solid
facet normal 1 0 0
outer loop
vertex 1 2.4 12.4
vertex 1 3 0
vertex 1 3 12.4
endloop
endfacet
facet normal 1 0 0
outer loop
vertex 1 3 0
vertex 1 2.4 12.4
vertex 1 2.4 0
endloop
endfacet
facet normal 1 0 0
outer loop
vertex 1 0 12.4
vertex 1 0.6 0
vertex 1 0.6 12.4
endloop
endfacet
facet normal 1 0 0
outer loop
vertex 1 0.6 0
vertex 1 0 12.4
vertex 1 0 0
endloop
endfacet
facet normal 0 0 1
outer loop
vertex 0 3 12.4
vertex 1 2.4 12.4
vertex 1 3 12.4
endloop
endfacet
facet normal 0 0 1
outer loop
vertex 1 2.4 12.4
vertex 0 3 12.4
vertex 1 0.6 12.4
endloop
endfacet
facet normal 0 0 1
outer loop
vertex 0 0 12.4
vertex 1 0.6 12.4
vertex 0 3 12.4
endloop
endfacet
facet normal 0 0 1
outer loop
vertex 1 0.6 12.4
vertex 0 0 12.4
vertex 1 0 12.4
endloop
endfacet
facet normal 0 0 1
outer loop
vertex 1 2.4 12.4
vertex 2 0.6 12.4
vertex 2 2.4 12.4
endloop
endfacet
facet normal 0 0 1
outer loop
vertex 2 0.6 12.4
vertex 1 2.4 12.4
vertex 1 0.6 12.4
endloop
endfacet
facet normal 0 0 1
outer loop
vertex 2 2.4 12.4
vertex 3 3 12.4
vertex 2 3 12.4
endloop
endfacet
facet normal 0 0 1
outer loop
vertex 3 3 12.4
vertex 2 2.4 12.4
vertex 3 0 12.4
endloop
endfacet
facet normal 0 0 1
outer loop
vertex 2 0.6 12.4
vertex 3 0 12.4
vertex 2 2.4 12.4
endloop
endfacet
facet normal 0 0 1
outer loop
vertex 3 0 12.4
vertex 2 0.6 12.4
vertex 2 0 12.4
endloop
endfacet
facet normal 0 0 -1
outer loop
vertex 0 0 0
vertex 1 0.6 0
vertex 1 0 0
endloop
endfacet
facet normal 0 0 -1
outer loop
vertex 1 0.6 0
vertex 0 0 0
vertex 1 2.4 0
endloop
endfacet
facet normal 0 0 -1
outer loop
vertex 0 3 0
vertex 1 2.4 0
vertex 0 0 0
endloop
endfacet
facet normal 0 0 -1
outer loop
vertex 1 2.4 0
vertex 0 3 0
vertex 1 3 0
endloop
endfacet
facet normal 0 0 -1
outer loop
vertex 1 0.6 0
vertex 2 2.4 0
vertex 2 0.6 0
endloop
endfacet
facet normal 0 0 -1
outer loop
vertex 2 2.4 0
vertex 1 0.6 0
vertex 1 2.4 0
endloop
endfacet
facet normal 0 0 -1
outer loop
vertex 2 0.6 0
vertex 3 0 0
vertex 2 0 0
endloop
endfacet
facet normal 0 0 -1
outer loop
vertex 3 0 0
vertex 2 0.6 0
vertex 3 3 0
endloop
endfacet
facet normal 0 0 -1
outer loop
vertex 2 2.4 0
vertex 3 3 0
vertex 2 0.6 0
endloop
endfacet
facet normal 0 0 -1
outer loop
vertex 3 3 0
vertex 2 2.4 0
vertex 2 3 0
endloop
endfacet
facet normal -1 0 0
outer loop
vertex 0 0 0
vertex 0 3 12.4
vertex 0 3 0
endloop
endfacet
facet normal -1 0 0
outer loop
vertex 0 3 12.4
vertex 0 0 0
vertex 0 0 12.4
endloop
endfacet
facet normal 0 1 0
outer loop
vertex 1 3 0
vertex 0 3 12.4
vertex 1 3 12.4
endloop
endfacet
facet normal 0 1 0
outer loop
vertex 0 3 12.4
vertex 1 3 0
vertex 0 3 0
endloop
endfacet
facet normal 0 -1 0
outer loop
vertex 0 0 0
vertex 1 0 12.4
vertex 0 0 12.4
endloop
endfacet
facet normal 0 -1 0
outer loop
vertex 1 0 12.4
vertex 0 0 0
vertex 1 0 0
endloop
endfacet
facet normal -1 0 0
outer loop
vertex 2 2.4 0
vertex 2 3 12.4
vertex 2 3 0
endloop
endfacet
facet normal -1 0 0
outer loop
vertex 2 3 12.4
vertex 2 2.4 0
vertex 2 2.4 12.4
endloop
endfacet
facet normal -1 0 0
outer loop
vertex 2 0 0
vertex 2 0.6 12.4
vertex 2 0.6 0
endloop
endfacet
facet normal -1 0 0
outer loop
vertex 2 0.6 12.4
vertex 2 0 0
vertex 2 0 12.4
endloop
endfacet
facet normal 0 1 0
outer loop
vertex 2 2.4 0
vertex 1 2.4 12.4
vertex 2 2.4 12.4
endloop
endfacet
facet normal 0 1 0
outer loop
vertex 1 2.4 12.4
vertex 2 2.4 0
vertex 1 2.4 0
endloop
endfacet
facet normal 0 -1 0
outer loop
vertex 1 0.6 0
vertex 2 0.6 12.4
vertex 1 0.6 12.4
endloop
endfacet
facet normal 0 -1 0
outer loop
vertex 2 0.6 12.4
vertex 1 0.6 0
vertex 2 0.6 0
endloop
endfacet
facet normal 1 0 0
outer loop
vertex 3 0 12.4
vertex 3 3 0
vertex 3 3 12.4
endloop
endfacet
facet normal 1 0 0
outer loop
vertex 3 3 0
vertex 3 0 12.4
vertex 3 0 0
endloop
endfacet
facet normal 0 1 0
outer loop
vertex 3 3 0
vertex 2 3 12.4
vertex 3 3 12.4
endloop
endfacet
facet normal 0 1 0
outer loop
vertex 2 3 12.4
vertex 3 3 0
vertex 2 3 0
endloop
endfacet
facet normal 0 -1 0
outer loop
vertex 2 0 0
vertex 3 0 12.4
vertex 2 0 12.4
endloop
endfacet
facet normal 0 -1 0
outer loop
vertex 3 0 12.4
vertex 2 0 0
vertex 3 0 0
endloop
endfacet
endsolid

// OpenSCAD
// file: ../lib/ssd1306.scad
// SPDX-FileCopyrightText: 2022-2024 Rafael G. Martins <rafael@rafaelmartins.eng.br>
// SPDX-License-Identifier: CERN-OHL-S-2.0

ssd1306_pcb_thickness = 1.6;
ssd1306_pcb_base_height = 2;
ssd1306_pcb_base_d = 4;
ssd1306_pcb_base_screw_d = 1.8;
ssd1306_pcb_base_spacing_x = 23.5;
ssd1306_pcb_base_spacing_y = 23.8;
ssd1306_screen_width = 24.5;
ssd1306_screen_height = 13;
ssd1306_screen_distance_x = (ssd1306_pcb_base_spacing_x - ssd1306_screen_width) / 2;
ssd1306_screen_distance_y = 3.5;
ssd1306_pin_distance_y = 0.45;


module ssd1306_add(thickness) {
    translate([-ssd1306_pcb_base_d / 2, -ssd1306_pcb_base_d / 2, 0])
        cube([ssd1306_pcb_base_spacing_x + ssd1306_pcb_base_d,
              ssd1306_pcb_base_spacing_y + ssd1306_pcb_base_d,
              thickness]);

    for(i=[0:1])
        for(j=[0:1])
            translate([i * ssd1306_pcb_base_spacing_x, j * ssd1306_pcb_base_spacing_y, thickness])
                cylinder(ssd1306_pcb_base_height, d=ssd1306_pcb_base_d, $fn=20);
}


module ssd1306_sub(thickness) {
    translate([ssd1306_screen_distance_x, ssd1306_screen_distance_y, 0])
        cube([ssd1306_screen_width, ssd1306_screen_height, thickness]);

    for(i=[0:1])
        for(j=[0:1])
            translate([i * ssd1306_pcb_base_spacing_x, j * ssd1306_pcb_base_spacing_y, thickness])
                cylinder(ssd1306_pcb_base_height, d=ssd1306_pcb_base_screw_d, $fn=20);
}
// file: ../lib/led-holder.scad
// SPDX-FileCopyrightText: 2022-2024 Rafael G. Martins <rafael@rafaelmartins.eng.br>
// SPDX-License-Identifier: CERN-OHL-S-2.0

module led_holder(height) {
    led_width = 1.8;
    led_length = 1;
    led_margin = 1;

    width_ = 3;
    length_ = 2 * led_margin + led_length;

    cube([led_margin, width_, height]);
    translate([led_margin, (width_ - led_width) / 2, 0])
        cube([led_length, led_width, height]);
    translate([length_ - led_margin, 0, 0])
        cube([led_margin, width_, height]);
}
// file: settings.scad
// SPDX-FileCopyrightText: 2022-2024 Rafael G. Martins <rafael@rafaelmartins.eng.br>
// SPDX-License-Identifier: CERN-OHL-S-2.0

include <../lib/ssd1306.scad>

screw_d = 2;
screw_h = 8;
thickness = 2;
gap = 0;

front_screw_padding = 3.5;

pcb_base_d = 5;
pcb_base_screw_d = 1.8;
pcb_screw_padding = 2.54;
pcb_thickness = 1.6;

pcb_gap = 1;
pcb_padding_x = thickness + pcb_gap;
pcb_padding_y = thickness + pcb_gap;

display_pcb_length = 39.624;
display_pcb_width = 33.782;

display_pcb0_x = pcb_padding_x;
display_pcb0_y = pcb_padding_y;

display_length = display_pcb_length + 2 * pcb_padding_x;
display_width = display_pcb_width + pcb_padding_y;

switches_pcb_length = 84.582;
switches_pcb_width = 45.974;

switches_length = switches_pcb_length + 2 * pcb_padding_x;
switches_width = switches_pcb_width + 2 * pcb_padding_y;

switches_pcb_base_distance_x = 39.751;
switches_pcb_base_distance_y = 20.447;

oled_socket_height = 8.5;
oled_pin0_y = 5.334;
oled0_x = (display_length - ssd1306_pcb_base_spacing_x) / 2;
oled0_y = display_pcb0_y + oled_pin0_y + ssd1306_pin_distance_y;

display_pcb_base_distance = 34.544;
display_pcb_base_height = 2.8 + oled_socket_height + ssd1306_pcb_thickness + ssd1306_pcb_base_height;

switches_pcb_base_height = 6 - thickness;

usb_height = 4.4;
usb_width = 8.2;
usb_distance_x = pcb_padding_x + 29.210 - usb_width / 2;
usb_distance_z = thickness + display_pcb_base_height + pcb_thickness - 0.1;

display_height = usb_distance_z + usb_height + 0.8 + thickness;
display_height_in = display_pcb_base_height - switches_pcb_base_height - thickness;

switches_height = display_height - display_pcb_base_height + switches_pcb_base_height;

led0_x = 37.211;
led0_y = 15.24;
led_d = 3.2;

key_dim = 16;
key_distance = 19.304;
key0_x = 13.335 - key_dim / 2;
key0_y = key0_x;

base_screw_d = 1.8;
base_screw_h = 5;
base_screw_padding = 8;
base_screw_padding_bottom = 25;

base_length = switches_length;
base_width = display_width + switches_width - pcb_gap - thickness;
base_height = 16;

back_screw3_padding = 10;
// main file
// SPDX-FileCopyrightText: 2022-2024 Rafael G. Martins <rafael@rafaelmartins.eng.br>
// SPDX-License-Identifier: CERN-OHL-S-2.0

include <settings.scad>
include <../lib/led-holder.scad>

led_holder(display_pcb_base_height - 2.5);
